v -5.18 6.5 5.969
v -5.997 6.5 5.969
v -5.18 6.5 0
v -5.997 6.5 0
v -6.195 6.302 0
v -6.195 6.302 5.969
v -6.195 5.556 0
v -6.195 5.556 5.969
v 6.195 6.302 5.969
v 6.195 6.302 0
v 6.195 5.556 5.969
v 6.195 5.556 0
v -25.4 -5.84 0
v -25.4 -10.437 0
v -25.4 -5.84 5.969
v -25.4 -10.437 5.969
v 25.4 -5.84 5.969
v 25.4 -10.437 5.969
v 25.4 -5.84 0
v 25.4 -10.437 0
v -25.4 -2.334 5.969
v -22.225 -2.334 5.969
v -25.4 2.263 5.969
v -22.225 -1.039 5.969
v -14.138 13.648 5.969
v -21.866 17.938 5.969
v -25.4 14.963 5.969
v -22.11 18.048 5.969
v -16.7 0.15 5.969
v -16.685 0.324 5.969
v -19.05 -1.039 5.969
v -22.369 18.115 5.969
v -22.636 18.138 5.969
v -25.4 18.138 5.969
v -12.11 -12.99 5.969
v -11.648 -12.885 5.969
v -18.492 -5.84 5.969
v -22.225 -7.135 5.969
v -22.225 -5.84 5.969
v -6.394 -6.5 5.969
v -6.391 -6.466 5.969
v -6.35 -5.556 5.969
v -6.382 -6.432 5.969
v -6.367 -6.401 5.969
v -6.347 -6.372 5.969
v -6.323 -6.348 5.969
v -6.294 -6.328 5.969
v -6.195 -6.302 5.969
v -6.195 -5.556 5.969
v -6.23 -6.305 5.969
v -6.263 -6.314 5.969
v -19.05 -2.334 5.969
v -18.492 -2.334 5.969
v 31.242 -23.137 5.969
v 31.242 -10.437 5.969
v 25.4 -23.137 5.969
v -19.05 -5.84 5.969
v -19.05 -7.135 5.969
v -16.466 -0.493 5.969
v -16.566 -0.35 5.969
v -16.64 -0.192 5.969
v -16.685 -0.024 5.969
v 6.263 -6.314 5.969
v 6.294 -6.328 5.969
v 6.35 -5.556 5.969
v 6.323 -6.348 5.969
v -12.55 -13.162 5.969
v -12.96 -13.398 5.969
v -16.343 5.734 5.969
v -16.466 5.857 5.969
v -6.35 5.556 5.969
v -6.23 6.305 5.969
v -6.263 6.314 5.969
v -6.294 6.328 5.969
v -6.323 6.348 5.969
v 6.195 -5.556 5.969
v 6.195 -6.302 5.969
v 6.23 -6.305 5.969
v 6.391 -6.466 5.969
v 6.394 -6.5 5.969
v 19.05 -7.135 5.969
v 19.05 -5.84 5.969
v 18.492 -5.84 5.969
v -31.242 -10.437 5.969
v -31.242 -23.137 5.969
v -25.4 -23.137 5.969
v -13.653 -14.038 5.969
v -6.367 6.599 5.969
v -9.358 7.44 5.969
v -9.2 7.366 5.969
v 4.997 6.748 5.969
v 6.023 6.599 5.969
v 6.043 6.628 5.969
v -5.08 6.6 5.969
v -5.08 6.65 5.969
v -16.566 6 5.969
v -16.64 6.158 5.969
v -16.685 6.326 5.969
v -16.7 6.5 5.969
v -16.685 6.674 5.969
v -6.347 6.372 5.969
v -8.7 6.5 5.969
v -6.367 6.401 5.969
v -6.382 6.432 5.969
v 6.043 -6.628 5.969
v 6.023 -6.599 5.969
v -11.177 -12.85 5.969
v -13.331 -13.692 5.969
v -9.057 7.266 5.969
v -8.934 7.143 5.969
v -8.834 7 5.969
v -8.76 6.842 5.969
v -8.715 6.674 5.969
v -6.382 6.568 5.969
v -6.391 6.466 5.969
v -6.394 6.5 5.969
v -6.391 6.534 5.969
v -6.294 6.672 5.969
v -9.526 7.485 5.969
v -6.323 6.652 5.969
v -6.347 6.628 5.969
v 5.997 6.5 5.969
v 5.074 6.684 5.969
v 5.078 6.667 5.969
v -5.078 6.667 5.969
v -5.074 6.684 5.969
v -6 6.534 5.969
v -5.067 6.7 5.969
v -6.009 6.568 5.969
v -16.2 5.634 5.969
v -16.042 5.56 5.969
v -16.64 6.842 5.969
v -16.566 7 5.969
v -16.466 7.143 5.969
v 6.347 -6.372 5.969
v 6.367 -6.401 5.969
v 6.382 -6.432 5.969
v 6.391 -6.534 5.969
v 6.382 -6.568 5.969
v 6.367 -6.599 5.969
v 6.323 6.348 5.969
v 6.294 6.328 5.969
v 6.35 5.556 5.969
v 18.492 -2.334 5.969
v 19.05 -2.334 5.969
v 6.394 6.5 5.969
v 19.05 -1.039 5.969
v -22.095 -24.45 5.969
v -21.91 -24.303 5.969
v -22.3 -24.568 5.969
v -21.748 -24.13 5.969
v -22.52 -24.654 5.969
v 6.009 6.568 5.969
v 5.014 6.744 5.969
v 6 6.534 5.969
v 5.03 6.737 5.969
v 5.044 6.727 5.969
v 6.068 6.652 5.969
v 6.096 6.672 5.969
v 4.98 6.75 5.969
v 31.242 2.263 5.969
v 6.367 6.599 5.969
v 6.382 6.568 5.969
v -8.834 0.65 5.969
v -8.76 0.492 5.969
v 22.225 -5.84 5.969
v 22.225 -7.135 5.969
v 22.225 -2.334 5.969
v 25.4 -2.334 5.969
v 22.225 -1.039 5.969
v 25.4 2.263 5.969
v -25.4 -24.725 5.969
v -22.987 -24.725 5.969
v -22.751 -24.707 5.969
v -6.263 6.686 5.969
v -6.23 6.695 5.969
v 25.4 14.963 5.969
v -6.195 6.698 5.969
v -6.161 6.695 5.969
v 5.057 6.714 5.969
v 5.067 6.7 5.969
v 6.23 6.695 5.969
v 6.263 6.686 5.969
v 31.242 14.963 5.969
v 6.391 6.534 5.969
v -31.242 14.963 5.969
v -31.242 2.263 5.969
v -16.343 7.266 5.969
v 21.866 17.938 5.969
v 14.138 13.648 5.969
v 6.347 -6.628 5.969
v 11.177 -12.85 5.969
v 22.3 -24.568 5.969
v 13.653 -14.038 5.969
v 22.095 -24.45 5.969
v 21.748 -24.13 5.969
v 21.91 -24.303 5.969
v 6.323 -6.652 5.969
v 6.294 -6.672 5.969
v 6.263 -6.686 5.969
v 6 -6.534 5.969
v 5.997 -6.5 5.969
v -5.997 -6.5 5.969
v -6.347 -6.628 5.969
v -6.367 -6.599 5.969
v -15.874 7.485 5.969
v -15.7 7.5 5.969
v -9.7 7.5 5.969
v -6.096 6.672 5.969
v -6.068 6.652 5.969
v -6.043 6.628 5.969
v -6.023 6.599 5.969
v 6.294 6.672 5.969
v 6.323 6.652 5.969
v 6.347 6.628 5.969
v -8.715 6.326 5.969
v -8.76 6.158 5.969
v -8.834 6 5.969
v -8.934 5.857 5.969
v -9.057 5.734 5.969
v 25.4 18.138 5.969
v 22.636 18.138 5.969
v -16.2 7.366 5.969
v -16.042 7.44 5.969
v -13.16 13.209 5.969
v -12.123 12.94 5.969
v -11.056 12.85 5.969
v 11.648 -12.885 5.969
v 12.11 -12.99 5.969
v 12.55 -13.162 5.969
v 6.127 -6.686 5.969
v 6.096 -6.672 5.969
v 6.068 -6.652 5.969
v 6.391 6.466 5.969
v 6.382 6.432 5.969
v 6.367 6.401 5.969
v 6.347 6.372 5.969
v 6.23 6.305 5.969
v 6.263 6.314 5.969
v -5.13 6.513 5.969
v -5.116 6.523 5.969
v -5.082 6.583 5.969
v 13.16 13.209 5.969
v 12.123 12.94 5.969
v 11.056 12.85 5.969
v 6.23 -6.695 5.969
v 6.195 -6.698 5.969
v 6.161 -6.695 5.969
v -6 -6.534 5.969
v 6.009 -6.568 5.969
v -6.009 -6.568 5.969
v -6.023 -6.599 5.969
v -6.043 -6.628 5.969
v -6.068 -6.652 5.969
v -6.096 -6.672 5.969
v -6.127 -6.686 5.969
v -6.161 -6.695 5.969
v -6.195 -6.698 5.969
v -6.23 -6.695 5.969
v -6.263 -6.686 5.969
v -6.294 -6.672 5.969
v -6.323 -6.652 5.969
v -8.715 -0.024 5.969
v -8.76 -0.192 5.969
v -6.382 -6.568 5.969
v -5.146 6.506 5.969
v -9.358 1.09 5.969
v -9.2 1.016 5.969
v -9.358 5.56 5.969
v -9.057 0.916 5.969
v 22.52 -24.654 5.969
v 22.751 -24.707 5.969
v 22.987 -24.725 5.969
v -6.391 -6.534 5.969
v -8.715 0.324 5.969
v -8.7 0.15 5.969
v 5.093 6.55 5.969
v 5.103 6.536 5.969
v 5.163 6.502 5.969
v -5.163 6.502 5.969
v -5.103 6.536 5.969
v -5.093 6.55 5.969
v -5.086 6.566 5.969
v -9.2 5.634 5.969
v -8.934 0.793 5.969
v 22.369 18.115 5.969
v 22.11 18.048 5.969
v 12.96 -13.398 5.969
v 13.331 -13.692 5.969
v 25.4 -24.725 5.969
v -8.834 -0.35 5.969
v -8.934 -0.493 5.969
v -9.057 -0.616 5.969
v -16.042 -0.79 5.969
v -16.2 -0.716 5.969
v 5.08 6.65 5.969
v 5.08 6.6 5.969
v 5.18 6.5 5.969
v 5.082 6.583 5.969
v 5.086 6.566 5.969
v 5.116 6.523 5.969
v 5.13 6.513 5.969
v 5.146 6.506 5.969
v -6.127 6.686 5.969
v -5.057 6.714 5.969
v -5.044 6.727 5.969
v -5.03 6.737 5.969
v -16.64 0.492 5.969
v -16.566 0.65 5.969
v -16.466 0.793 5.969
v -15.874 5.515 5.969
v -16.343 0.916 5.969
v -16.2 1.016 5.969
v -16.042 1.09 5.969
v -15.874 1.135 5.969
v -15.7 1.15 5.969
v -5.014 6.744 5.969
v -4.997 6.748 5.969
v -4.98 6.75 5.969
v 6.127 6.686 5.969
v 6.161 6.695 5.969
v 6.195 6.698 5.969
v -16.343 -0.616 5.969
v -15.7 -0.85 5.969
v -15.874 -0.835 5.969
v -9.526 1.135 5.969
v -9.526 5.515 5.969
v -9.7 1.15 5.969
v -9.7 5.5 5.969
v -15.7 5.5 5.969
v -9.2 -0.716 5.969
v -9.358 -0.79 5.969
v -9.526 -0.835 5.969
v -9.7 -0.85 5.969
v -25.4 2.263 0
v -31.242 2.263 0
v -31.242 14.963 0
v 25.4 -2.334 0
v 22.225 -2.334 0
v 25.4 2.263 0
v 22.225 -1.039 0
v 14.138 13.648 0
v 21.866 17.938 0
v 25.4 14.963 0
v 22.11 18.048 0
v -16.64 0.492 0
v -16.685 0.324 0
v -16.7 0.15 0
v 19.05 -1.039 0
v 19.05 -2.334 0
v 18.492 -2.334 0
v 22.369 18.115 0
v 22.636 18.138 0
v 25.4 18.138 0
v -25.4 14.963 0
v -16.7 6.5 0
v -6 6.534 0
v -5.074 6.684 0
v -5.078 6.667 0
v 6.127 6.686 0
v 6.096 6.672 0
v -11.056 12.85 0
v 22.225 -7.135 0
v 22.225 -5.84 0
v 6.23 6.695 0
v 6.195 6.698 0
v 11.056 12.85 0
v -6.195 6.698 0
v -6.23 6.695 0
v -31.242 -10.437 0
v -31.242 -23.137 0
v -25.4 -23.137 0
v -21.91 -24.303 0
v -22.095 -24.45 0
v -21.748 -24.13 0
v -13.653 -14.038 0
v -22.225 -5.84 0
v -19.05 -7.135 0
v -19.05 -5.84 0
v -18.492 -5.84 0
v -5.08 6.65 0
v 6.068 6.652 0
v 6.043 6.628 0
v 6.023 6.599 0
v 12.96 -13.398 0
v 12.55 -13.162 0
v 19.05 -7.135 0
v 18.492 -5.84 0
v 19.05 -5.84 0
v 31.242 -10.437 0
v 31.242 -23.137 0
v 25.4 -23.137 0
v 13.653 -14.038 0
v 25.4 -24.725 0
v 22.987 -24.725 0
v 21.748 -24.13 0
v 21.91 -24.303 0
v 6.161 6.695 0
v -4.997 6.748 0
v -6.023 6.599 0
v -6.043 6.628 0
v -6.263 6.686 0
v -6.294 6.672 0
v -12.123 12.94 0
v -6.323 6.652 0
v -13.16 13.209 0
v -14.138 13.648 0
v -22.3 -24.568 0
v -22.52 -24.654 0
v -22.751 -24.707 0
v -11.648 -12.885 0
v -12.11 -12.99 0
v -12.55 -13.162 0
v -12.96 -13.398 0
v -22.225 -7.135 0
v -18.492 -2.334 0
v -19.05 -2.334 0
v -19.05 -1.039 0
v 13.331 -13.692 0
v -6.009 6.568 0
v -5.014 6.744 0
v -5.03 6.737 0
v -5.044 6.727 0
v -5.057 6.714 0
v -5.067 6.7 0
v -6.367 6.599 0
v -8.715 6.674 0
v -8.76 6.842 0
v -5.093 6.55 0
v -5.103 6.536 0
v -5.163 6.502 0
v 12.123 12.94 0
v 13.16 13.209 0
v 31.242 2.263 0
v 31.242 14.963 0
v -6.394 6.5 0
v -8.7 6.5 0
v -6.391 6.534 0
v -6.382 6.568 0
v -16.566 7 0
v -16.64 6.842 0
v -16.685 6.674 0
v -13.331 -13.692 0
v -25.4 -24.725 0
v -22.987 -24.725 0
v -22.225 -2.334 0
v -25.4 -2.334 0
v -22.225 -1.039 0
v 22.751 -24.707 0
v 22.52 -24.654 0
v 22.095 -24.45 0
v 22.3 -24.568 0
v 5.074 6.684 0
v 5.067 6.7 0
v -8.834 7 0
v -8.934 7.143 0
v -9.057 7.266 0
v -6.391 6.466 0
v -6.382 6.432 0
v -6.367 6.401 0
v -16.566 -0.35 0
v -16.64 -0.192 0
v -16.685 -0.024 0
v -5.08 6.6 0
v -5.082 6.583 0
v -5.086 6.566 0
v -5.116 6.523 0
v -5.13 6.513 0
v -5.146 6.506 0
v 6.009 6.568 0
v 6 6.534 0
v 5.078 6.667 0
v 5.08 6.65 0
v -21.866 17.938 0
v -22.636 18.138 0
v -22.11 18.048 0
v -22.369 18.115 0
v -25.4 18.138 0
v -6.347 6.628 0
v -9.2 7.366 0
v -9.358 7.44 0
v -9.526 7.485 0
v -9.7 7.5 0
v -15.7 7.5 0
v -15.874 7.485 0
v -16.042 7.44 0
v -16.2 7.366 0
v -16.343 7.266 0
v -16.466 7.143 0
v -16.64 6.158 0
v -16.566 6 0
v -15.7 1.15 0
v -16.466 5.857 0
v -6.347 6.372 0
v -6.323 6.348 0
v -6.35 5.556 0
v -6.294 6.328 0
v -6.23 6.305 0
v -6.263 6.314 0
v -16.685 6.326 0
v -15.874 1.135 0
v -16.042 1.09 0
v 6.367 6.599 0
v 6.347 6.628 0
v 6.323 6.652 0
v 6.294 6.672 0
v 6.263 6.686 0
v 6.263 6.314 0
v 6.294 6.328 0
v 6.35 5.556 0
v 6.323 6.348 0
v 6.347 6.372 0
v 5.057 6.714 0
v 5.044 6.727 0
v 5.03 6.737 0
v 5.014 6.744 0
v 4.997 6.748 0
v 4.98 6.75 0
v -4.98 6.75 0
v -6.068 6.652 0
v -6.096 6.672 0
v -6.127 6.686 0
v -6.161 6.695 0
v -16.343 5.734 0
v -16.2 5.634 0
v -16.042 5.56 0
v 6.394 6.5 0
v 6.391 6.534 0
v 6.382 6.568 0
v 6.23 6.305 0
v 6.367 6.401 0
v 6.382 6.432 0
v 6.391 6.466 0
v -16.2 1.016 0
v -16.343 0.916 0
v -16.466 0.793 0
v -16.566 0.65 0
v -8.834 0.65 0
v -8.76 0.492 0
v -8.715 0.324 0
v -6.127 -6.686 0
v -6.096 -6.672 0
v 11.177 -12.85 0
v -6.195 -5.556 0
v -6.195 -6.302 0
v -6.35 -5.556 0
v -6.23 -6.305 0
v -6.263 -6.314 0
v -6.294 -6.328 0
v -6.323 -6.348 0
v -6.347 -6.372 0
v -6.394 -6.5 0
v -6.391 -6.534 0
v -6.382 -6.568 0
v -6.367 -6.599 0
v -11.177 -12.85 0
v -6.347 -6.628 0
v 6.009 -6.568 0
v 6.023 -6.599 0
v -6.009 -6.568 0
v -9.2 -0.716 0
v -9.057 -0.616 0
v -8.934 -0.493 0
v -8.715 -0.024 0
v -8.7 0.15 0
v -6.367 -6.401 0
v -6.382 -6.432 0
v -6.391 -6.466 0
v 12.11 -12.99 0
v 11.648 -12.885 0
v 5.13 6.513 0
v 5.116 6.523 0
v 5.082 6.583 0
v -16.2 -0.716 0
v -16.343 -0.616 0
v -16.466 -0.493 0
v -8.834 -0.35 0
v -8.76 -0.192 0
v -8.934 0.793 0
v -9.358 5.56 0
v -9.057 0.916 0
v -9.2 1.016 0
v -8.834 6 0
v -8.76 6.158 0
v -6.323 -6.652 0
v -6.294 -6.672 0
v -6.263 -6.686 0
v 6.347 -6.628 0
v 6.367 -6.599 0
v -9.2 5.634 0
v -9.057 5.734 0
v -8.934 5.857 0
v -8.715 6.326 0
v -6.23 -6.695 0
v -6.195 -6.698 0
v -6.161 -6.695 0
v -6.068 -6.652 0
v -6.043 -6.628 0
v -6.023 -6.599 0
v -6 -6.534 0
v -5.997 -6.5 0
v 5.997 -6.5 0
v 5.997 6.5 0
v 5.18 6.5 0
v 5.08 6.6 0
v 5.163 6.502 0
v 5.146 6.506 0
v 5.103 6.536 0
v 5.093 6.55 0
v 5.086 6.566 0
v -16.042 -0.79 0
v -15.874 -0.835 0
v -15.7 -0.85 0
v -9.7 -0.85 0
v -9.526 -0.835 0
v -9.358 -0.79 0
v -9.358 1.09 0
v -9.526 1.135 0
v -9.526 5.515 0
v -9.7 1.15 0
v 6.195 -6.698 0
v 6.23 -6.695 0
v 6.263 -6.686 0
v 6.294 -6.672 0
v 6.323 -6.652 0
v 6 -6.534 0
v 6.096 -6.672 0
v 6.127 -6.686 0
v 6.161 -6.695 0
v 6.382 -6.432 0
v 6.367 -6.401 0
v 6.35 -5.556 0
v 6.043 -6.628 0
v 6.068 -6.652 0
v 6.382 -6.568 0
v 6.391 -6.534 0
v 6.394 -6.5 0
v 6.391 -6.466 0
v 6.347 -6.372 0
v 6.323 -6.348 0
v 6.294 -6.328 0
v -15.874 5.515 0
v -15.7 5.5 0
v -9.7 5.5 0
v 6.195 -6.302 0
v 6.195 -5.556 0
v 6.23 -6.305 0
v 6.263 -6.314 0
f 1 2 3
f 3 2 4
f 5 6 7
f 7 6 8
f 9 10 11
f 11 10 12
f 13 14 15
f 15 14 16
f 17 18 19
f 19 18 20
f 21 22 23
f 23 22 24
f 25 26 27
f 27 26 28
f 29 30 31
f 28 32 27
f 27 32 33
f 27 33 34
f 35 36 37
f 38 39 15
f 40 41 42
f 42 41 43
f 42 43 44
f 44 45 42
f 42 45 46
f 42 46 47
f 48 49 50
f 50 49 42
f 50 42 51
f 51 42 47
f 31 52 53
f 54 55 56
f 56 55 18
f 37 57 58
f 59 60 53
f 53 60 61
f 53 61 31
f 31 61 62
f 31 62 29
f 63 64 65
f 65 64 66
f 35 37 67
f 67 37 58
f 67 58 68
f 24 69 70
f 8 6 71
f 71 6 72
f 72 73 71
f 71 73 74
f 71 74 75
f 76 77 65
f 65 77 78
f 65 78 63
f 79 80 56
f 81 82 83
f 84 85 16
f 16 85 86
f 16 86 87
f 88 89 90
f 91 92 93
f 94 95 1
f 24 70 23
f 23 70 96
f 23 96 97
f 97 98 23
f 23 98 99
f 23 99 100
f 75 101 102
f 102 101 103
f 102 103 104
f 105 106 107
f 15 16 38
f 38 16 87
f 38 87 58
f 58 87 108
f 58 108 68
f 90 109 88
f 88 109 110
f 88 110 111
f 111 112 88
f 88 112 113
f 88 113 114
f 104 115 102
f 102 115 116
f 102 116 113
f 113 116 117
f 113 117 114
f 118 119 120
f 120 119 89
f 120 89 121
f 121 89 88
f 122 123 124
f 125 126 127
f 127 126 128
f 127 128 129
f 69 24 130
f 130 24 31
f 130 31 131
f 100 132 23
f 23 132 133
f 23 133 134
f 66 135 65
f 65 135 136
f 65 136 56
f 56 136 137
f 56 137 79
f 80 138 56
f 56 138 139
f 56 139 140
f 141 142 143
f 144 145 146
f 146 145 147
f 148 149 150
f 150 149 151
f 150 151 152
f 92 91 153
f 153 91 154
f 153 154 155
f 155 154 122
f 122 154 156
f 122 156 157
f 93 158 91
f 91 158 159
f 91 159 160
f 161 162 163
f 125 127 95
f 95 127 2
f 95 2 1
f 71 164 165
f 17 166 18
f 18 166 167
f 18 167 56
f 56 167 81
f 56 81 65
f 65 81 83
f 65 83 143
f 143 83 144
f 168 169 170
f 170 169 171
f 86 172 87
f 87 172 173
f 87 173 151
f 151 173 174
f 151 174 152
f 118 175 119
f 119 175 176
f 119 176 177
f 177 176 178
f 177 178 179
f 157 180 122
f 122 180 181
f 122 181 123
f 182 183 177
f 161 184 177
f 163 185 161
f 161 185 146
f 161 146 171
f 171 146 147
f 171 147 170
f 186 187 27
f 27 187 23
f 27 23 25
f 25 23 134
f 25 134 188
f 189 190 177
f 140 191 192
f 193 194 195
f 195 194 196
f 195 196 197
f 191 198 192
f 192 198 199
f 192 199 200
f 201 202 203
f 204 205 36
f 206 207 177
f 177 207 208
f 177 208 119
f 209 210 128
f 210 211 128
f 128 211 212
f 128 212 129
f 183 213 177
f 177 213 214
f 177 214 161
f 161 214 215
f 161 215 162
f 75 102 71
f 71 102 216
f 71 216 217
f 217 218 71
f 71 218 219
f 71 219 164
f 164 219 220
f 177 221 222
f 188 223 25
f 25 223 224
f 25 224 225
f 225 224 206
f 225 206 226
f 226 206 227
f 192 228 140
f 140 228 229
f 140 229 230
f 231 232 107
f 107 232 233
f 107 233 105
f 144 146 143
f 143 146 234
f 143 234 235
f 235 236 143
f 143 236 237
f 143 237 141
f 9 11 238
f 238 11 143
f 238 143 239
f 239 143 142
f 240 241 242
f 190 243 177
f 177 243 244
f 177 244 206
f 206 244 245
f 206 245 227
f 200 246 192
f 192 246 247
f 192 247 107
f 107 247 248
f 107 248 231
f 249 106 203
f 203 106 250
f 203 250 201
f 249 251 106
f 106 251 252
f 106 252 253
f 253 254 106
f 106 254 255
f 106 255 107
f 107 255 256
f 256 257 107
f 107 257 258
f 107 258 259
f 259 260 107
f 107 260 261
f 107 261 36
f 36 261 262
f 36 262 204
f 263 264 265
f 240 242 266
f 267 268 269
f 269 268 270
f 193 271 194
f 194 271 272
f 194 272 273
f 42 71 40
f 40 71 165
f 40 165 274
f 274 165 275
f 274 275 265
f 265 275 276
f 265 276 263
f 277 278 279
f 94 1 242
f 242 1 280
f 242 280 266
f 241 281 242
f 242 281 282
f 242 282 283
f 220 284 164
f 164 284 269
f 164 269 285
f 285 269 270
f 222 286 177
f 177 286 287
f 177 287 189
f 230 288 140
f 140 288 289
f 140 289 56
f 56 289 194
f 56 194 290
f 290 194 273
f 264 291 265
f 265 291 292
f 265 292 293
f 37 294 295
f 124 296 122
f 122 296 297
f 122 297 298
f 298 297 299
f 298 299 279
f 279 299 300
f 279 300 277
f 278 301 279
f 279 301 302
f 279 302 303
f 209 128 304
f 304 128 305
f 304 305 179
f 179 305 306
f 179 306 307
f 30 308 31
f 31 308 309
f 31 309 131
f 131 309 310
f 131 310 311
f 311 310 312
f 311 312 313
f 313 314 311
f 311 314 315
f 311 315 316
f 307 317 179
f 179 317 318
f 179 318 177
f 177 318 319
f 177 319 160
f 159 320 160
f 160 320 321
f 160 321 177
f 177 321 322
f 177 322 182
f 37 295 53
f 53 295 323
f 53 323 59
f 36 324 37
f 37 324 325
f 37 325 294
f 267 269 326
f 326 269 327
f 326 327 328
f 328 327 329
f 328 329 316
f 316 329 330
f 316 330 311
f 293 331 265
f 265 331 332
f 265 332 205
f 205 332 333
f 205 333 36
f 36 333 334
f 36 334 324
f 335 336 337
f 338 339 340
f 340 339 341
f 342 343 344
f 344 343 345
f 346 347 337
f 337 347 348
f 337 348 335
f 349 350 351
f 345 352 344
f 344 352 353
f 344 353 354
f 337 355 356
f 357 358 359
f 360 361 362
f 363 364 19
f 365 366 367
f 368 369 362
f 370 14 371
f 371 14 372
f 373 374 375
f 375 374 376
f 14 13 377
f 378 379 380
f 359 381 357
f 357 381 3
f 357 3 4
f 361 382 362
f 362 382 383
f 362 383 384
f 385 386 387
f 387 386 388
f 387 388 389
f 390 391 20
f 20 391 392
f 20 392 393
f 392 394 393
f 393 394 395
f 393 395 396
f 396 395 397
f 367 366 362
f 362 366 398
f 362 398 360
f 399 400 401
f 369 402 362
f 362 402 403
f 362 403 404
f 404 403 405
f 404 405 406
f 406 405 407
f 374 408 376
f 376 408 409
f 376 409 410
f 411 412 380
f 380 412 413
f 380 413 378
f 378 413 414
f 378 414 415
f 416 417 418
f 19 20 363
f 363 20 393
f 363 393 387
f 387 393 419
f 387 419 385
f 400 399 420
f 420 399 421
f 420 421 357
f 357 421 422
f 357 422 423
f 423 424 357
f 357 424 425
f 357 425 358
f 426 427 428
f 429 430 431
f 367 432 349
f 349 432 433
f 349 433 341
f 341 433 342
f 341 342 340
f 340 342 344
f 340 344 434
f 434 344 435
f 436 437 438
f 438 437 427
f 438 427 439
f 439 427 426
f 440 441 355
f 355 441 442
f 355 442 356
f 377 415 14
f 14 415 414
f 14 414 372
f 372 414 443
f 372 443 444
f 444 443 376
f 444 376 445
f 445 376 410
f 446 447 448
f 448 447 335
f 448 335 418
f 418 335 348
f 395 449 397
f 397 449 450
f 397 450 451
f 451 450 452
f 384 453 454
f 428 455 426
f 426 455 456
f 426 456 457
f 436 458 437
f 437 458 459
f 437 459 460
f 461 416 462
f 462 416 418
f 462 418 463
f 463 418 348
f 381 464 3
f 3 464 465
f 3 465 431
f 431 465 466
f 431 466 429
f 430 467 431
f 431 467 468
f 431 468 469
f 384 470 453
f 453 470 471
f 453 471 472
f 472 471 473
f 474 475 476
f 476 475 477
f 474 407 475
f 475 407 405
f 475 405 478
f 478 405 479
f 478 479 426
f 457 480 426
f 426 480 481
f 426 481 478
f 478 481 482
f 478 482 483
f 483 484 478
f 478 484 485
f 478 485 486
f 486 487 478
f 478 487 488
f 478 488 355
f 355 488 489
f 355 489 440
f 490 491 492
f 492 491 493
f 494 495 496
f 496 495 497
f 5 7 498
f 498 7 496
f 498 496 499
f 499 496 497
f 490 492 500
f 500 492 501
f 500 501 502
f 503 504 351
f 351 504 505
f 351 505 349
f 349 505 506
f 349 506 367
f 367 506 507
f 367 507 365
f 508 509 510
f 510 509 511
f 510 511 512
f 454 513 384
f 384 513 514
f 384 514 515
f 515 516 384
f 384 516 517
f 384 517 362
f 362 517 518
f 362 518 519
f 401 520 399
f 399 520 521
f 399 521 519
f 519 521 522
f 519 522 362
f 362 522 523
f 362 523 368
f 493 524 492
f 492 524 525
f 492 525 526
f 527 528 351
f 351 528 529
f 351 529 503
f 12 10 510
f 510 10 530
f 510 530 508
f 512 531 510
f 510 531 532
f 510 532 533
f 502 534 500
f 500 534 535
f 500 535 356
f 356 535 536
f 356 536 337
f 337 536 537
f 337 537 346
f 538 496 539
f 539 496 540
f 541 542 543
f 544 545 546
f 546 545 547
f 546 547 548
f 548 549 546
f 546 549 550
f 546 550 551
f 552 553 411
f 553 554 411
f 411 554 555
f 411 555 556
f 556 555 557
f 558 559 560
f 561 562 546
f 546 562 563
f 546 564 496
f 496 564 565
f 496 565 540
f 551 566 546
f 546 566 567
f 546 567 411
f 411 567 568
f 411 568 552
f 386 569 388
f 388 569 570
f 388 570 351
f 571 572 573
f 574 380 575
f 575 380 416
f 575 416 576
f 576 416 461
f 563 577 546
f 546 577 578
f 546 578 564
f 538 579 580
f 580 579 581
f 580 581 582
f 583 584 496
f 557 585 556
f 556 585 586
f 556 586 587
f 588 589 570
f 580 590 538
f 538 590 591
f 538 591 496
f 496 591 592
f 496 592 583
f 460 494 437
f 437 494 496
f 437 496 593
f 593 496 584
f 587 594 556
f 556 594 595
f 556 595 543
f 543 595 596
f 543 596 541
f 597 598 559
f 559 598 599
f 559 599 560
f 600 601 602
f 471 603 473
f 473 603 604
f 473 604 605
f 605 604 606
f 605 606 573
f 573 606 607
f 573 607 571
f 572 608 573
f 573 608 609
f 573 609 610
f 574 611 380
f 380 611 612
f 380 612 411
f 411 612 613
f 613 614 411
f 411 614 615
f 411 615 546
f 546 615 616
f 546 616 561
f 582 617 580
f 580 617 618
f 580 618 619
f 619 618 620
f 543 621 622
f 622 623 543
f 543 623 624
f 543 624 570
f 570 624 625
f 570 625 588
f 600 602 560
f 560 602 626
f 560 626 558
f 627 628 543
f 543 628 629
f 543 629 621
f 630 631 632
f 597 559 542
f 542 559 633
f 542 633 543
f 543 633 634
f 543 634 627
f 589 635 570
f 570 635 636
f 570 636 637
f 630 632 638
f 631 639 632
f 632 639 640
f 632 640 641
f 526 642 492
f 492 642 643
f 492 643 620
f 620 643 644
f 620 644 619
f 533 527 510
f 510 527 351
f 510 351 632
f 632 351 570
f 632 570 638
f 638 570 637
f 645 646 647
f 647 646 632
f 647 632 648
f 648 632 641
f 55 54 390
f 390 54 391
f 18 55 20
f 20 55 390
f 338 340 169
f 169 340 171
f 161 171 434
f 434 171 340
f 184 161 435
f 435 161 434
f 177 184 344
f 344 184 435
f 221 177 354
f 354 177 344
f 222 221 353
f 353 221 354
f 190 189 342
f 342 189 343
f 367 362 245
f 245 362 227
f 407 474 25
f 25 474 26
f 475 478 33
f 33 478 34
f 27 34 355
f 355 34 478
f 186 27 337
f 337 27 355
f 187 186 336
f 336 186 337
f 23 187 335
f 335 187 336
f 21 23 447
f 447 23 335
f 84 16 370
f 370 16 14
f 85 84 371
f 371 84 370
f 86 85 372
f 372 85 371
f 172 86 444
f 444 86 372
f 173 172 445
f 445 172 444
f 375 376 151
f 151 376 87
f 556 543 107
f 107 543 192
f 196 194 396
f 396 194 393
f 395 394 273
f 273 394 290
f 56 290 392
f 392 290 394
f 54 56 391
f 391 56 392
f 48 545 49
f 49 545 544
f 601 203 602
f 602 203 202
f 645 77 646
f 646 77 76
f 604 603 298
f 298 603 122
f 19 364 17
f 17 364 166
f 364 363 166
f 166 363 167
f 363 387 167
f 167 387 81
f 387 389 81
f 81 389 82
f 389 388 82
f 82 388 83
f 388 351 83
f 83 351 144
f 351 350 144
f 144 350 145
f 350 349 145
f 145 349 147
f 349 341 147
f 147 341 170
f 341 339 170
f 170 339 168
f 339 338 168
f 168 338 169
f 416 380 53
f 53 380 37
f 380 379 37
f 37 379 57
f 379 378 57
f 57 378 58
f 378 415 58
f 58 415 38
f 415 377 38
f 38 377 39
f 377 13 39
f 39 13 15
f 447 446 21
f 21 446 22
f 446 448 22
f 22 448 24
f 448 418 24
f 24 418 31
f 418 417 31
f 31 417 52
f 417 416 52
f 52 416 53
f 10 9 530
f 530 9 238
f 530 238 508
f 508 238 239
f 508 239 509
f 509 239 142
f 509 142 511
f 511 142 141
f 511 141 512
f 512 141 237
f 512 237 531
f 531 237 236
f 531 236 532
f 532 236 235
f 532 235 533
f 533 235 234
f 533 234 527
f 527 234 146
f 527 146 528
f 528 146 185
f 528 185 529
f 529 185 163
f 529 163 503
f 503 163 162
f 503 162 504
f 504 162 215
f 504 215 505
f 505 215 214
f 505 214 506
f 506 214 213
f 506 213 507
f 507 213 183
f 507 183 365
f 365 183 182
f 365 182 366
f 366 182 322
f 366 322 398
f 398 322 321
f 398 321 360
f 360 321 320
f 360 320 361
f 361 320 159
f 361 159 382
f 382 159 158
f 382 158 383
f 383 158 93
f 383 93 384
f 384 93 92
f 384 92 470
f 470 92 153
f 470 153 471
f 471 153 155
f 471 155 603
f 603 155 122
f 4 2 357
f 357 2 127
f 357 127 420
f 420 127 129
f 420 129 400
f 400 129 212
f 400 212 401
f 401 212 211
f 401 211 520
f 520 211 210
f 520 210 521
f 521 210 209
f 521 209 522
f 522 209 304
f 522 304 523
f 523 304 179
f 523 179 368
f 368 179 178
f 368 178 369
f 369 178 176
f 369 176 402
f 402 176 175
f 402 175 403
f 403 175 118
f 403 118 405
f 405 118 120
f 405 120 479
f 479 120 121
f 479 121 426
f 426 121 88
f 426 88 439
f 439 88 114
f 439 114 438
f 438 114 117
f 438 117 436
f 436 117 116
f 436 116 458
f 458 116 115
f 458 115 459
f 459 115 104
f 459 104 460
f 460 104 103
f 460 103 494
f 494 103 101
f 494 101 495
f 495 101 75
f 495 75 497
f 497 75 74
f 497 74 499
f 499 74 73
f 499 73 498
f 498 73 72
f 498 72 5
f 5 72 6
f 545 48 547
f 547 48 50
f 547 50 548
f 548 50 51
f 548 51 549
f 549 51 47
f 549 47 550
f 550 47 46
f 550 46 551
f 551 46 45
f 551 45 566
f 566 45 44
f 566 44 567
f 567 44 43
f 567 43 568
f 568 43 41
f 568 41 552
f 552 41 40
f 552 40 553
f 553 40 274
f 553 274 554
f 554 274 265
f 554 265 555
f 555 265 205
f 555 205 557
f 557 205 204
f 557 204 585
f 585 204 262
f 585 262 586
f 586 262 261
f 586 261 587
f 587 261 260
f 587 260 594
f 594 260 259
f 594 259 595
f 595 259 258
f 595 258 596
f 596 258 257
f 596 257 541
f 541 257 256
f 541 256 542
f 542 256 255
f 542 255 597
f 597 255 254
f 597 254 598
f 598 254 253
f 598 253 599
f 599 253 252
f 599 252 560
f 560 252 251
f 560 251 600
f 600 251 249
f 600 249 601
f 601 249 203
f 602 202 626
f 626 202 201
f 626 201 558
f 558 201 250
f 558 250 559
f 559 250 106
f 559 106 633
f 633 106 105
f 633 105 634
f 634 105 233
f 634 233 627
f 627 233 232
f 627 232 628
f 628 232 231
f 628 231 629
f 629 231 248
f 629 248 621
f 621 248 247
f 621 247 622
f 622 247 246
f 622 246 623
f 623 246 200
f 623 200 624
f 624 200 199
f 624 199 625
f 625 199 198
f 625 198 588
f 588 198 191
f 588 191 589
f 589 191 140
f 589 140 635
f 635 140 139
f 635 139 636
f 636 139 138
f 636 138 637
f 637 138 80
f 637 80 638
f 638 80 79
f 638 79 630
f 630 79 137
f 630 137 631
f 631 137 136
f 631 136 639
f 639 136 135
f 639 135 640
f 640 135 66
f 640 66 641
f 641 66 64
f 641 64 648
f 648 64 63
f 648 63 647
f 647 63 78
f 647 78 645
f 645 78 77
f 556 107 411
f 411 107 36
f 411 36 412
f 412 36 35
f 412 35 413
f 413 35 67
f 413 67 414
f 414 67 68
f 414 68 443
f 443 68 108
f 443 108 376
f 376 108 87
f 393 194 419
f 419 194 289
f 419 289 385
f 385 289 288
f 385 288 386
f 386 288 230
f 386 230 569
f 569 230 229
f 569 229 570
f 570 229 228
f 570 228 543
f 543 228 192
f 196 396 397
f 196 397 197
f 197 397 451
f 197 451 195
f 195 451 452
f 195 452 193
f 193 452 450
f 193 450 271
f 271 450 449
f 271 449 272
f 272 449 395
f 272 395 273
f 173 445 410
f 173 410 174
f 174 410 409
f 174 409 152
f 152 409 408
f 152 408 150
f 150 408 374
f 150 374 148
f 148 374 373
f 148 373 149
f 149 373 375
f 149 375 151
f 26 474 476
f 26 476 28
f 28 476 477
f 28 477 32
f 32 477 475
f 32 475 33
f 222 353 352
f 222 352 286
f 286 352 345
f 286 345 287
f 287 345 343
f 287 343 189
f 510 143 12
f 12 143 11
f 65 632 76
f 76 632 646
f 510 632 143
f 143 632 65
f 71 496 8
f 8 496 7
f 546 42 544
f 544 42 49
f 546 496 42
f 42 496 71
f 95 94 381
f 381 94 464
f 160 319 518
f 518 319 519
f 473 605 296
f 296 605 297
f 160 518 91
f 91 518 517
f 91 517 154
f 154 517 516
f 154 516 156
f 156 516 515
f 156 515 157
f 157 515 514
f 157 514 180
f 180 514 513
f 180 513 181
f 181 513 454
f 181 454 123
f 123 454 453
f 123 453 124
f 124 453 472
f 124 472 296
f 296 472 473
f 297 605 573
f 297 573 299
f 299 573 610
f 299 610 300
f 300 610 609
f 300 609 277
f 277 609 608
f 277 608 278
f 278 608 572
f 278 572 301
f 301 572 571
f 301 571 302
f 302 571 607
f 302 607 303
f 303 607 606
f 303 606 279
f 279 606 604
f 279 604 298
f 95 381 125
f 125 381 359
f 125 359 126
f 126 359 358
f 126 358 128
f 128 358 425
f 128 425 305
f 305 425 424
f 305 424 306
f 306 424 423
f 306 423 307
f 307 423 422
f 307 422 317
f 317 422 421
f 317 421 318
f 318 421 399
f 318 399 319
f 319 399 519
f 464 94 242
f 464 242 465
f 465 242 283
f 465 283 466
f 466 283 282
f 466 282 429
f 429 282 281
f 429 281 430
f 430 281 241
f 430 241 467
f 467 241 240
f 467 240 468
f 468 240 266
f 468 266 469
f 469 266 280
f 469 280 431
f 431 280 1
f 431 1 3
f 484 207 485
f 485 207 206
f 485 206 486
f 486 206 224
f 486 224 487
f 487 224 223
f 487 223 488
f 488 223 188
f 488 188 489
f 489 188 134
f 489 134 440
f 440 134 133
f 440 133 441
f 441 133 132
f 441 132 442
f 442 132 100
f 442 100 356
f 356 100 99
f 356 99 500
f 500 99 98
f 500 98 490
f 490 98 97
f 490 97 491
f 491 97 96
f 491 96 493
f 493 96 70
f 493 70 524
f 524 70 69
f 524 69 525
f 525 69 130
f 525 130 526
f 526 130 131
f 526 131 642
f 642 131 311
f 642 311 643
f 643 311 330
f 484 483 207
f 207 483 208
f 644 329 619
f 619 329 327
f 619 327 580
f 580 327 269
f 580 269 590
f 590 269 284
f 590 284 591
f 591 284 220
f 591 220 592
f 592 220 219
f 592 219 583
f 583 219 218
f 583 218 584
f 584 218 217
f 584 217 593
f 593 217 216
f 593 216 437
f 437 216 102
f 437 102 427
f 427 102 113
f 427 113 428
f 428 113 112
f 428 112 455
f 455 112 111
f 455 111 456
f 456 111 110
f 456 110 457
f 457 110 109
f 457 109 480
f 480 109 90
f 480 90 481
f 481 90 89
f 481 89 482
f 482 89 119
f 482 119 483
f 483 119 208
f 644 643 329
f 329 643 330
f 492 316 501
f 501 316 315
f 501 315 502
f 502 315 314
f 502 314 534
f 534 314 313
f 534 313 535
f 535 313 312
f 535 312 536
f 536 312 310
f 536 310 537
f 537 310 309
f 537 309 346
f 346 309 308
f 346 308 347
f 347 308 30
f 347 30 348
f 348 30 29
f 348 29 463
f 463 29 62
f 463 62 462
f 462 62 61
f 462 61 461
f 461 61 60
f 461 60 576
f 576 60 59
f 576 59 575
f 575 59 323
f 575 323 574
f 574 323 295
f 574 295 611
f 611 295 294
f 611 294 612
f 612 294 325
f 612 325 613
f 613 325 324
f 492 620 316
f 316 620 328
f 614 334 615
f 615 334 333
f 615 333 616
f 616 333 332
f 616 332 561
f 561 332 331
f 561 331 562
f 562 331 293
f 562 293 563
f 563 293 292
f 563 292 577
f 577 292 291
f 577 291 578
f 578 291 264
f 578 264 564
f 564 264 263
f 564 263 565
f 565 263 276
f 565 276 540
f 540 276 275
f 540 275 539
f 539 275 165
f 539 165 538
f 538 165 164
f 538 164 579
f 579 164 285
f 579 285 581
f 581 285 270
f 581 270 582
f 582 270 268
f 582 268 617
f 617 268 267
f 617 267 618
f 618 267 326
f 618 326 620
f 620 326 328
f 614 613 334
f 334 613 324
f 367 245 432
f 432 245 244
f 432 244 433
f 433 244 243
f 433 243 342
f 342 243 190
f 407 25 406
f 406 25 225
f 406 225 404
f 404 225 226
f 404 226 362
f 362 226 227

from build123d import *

# Parameters (mm, degrees)
SKETCH1_W           = 12.3904
SKETCH1_H           = 13
BOSS_EXTRUDE1_DEPTH = 5.969
CUT_EXTRUDE1_DEPTH  = 41.286380146
SKETCH3_R           = 0.1984375
CUT_EXTRUDE2_DEPTH  = 41.286380146
FILLET1_R           = 3.175
FILLET2_R           = 1.5875
SKETCH4_W           = 12.7
SKETCH4_H           = 11.1125
CUT_EXTRUDE3_DEPTH  = 41.286380146
SKETCH5_W           = 10.16
SKETCH5_H           = 0.5
CUT_EXTRUDE4_DEPTH  = 41.286380146
FILLET8_R           = 0.1
CUT_EXTRUDE5_DEPTH  = 41.286380146
FILLET9_R           = 6.35


with BuildPart() as part:
    # Sketch1 → Boss-Extrude1 (new body)
    with BuildSketch(Plane.XY):
        Polygon((25.4, 2.263), (25.4, -10.437), (31.242, -10.437), (31.242, -23.137), (25.4, -23.137), (25.4, -24.7245), (22.225, -24.7245), (12.7, -12.85), (-12.7, -12.85), (-22.225, -24.7245), (-25.4, -24.7245), (-25.4, -23.137), (-31.242, -23.137), (-31.242, -10.437), (-25.4, -10.437), (-25.4, 2.263), (-31.242, 2.263), (-31.242, 14.963), (-25.4, 14.963), (-25.4, 18.138), (-22.225, 18.138), (-12.7, 12.85), (12.7, 12.85), (22.225, 18.138), (25.4, 18.138), (25.4, 14.963), (31.242, 14.963), (31.242, 2.263), align=None)
        Rectangle(SKETCH1_W, SKETCH1_H, mode=Mode.SUBTRACT)
    extrude(amount=BOSS_EXTRUDE1_DEPTH)

    # Sketch2 → Cut-Extrude1 (cut, through all)
    with BuildSketch(Plane.XY.offset(5.969)):
        Polygon((22.225, -2.3344), (22.225, -1.039), (19.05, -1.039), (19.05, -2.3344), (18.492, -2.3344), (18.492, -5.8396), (19.05, -5.8396), (19.05, -7.135), (22.225, -7.135), (22.225, -5.8396), (25.4, -5.8396), (25.4, -2.3344), align=None)
        Polygon((-19.05, -2.3344), (-19.05, -1.039), (-22.225, -1.039), (-22.225, -2.3344), (-25.4, -2.3344), (-25.4, -5.8396), (-22.225, -5.8396), (-22.225, -7.135), (-19.05, -7.135), (-19.05, -5.8396), (-18.492, -5.8396), (-18.492, -2.3344), align=None)
    extrude(amount=-CUT_EXTRUDE1_DEPTH, mode=Mode.SUBTRACT)

    # Sketch3 → Cut-Extrude2 (cut, through all)
    with BuildSketch(Plane.XY.offset(5.969)):
        with Locations((6.1952, 6.5)):
            Circle(SKETCH3_R)
        with Locations((-6.1952, 6.5)):
            Circle(SKETCH3_R)
        with Locations((-6.1952, -6.5)):
            Circle(SKETCH3_R)
        with Locations((6.1952, -6.5)):
            Circle(SKETCH3_R)
    extrude(amount=-CUT_EXTRUDE2_DEPTH, mode=Mode.SUBTRACT)

    # Fillet1
    fillet1_edges = [part.edges().sort_by_distance(p)[0] for p in [
        (12.7, -12.85, 2.9845),
        (-12.7, -12.85, 2.9845),
    ]]
    fillet(fillet1_edges, radius=FILLET1_R)

    # Fillet2
    fillet2_edges = [part.edges().sort_by_distance(p)[0] for p in [
        (22.225, -24.7245, 2.9845),
        (-22.225, -24.7245, 2.9845),
        (-22.225, 18.138, 2.9845),
        (22.225, 18.138, 2.9845),
    ]]
    fillet(fillet2_edges, radius=FILLET2_R)

    # Sketch4 → Cut-Extrude3 (cut, through all)
    with BuildSketch(Plane.XY.offset(5.969)):
        Rectangle(SKETCH4_W, SKETCH4_H)
    extrude(amount=-CUT_EXTRUDE3_DEPTH, mode=Mode.SUBTRACT)

    # Sketch5 → Cut-Extrude4 (cut, through all)
    with BuildSketch(Plane.XY.offset(5.969)):
        with Locations((0, 6.5)):
            Rectangle(SKETCH5_W, SKETCH5_H)
    extrude(amount=-CUT_EXTRUDE4_DEPTH, mode=Mode.SUBTRACT)

    # Fillet8
    fillet8_edges = [part.edges().sort_by_distance(p)[0] for p in [
        (5.08, 6.5, 2.9845),
        (-5.08, 6.5, 2.9845),
        (-5.08, 6.75, 2.9845),
        (5.08, 6.75, 2.9845),
    ]]
    fillet(fillet8_edges, radius=FILLET8_R)

    # Sketch6 → Cut-Extrude5 (cut, through all)
    with BuildSketch(Plane.XY.offset(5.969)):
        with BuildLine():
            Line((-15.7, 7.5), (-9.7, 7.5))
            ThreePointArc((-9.7, 7.5), (-8.7, 6.5), (-9.7, 5.5))
            Line((-9.7, 5.5), (-15.7, 5.5))
            ThreePointArc((-15.7, 5.5), (-16.7, 6.5), (-15.7, 7.5))
        make_face()
        with BuildLine():
            Line((-15.7, 1.15), (-9.7, 1.15))
            ThreePointArc((-9.7, 1.15), (-8.7, 0.15), (-9.7, -0.85))
            Line((-9.7, -0.85), (-15.7, -0.85))
            ThreePointArc((-15.7, -0.85), (-16.7, 0.15), (-15.7, 1.15))
        make_face()
    extrude(amount=-CUT_EXTRUDE5_DEPTH, mode=Mode.SUBTRACT)

    # Fillet9
    fillet9_edges = [part.edges().sort_by_distance(p)[0] for p in [
        (-12.7, 12.85, 2.9845),
        (12.7, 12.85, 2.9845),
    ]]
    fillet(fillet9_edges, radius=FILLET9_R)


solid = part.part
